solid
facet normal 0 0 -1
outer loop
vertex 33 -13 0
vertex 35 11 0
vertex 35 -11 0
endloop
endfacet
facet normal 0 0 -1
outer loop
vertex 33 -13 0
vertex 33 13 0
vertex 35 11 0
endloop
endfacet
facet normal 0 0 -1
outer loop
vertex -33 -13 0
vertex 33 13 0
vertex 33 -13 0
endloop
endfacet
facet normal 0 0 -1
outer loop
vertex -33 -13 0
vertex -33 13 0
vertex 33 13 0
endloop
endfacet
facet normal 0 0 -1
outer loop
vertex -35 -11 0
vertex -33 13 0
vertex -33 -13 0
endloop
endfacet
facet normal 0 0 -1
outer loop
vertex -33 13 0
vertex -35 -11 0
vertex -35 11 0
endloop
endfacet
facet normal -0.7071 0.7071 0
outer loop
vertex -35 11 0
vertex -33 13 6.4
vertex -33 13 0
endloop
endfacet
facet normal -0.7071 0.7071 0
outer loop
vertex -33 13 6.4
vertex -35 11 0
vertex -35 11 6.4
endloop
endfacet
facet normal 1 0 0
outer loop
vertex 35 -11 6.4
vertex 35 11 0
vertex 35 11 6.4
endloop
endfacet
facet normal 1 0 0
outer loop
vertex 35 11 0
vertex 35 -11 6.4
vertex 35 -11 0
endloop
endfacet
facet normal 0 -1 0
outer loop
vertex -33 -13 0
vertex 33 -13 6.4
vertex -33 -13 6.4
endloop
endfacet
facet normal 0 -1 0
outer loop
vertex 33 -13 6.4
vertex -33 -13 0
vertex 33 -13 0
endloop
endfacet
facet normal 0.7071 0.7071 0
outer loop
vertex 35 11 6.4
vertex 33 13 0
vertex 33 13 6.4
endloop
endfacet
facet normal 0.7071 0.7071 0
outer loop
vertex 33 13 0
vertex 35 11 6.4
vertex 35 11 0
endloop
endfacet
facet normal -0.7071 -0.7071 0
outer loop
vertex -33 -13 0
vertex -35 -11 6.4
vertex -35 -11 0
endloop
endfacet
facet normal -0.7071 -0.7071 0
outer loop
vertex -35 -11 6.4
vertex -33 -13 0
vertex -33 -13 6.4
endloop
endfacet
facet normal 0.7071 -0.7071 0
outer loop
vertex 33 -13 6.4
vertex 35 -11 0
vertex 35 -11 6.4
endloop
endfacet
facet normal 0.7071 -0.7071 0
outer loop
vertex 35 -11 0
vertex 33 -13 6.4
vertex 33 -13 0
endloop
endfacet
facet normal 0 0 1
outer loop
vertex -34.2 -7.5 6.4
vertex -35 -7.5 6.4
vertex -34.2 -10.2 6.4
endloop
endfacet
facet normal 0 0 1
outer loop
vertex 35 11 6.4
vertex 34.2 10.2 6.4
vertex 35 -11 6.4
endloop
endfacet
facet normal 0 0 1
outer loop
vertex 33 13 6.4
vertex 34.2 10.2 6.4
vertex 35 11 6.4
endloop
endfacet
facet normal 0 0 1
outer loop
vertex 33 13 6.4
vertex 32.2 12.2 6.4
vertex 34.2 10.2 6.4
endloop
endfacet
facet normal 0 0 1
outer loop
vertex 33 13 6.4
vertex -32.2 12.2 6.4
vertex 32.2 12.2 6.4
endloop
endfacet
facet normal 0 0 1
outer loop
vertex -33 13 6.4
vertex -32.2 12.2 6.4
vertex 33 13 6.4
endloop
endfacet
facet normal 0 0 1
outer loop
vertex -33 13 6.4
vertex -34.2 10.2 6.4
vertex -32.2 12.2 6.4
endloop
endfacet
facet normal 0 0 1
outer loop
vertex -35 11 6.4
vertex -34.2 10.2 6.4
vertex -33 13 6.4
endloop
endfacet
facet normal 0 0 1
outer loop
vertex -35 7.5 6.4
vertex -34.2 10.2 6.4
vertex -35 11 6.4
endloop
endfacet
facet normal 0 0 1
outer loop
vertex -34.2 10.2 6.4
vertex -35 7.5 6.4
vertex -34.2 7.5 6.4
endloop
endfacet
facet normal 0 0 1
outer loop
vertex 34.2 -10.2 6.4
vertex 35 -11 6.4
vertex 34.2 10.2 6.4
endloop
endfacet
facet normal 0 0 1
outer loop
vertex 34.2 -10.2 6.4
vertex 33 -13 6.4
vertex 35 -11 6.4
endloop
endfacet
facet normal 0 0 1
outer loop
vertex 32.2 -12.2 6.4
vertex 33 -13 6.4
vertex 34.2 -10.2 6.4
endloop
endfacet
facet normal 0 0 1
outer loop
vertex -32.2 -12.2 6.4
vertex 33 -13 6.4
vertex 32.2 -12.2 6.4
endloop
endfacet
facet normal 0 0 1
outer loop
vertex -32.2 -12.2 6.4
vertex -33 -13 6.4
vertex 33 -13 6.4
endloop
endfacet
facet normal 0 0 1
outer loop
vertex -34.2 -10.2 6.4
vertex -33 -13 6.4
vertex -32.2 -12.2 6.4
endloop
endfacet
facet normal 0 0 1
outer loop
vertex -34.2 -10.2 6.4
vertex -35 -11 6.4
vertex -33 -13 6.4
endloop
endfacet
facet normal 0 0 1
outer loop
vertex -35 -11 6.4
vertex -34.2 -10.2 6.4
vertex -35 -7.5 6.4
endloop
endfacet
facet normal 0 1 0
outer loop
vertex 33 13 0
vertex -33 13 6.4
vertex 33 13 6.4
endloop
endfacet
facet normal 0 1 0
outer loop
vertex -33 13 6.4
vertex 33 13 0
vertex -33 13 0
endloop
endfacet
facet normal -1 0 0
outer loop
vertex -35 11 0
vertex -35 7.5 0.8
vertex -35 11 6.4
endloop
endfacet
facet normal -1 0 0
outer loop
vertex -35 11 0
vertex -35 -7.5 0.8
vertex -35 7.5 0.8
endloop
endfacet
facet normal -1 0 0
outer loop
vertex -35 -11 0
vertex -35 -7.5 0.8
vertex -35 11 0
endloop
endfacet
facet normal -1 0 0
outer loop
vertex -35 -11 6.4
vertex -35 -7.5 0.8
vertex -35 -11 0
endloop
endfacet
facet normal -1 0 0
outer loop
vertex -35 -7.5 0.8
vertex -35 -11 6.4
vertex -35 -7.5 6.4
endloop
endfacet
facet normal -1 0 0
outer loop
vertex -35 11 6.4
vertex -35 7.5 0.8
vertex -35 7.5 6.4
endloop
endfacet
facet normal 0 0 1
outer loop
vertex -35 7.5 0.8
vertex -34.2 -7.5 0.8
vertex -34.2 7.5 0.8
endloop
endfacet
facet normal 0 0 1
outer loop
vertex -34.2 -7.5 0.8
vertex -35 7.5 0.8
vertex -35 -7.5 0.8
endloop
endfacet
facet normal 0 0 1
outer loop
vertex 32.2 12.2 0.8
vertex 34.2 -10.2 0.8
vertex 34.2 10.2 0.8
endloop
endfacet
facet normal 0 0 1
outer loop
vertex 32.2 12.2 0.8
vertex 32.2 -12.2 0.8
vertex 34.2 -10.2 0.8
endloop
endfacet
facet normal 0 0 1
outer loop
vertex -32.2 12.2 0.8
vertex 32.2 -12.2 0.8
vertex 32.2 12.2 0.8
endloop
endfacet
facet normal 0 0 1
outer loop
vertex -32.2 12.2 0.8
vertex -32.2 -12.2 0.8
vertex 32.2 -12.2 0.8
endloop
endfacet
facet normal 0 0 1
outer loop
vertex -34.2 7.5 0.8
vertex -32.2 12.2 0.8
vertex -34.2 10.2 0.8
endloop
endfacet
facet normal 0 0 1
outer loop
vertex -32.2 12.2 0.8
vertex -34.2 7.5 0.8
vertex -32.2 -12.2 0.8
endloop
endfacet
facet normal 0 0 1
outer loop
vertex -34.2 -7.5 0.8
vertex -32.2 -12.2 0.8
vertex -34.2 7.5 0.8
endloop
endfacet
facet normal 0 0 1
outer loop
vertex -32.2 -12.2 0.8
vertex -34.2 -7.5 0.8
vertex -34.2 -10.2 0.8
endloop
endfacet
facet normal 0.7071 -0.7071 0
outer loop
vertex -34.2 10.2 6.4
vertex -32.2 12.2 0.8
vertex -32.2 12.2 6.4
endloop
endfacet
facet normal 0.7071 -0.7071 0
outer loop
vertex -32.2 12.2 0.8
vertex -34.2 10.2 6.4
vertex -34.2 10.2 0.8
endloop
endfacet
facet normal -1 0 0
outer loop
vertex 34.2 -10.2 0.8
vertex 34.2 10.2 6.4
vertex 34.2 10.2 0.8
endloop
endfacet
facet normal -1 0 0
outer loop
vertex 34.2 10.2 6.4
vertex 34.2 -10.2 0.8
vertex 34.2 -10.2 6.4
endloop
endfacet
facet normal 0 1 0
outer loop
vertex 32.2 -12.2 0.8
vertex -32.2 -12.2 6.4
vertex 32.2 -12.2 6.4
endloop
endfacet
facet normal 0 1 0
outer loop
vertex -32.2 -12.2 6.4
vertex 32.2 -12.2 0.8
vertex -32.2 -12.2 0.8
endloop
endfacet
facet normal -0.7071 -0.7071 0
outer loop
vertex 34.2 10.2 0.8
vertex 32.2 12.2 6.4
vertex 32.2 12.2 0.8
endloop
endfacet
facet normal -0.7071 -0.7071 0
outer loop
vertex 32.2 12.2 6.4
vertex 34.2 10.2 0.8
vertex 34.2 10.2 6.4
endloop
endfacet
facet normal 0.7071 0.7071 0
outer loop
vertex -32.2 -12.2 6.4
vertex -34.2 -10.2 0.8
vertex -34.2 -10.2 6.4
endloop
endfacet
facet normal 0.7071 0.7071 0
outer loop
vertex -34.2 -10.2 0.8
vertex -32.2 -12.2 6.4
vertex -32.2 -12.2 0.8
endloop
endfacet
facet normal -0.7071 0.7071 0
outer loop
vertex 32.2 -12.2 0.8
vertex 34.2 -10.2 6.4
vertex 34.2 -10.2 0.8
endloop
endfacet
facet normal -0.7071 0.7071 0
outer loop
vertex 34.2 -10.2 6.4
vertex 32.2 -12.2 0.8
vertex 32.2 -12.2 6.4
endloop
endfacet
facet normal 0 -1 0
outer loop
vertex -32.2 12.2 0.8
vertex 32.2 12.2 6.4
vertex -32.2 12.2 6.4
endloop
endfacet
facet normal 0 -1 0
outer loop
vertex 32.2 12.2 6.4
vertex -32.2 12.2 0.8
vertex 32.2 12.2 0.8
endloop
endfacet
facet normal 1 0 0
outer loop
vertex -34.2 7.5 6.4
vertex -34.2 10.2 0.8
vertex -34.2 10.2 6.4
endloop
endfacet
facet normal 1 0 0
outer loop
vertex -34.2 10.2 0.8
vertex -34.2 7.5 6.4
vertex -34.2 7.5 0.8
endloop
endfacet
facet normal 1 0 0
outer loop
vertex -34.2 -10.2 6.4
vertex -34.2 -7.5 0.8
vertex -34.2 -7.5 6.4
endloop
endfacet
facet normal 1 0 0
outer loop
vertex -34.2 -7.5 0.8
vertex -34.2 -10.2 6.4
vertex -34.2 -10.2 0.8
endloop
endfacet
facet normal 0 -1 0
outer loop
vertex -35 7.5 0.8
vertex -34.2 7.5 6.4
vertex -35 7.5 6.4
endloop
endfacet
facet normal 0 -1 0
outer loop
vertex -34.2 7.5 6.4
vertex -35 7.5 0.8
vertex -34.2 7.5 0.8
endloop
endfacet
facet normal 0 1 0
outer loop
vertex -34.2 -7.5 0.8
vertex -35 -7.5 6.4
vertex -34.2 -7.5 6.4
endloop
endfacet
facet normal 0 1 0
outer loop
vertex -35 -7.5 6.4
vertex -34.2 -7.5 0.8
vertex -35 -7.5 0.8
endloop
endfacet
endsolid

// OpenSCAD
// file: lib/utils.scad
module xz_toward_y()
{
	scale([1, 1, -1])
	rotate([-90,0,0])
	children();
}

module anchor(dim, anchor=[0,0,0])
{
	translate([-(1+anchor.x)*dim.x/2, -(1+anchor.y)*dim.y/2, -(1+anchor.z)*dim.z/2])
	children();
}

module block(dim, anchor=[0,0,0])
{
	anchor(dim, anchor)
	cube(dim);
}

module rounded_block_z(dim, anchor=[0,0,0], r=0)
{
	anchor(dim, anchor)
	linear_extrude(dim.z)
	hull()
	for (p=[ [r,r], [dim.x-r, r], [dim.x-r, dim.y-r], [r, dim.y-r] ] )
	translate(p)
	circle(r);
}

module rounded_block_y(dim, anchor=[0,0,0], r=0)
{
	anchor(dim, anchor)
	xz_toward_y()
	linear_extrude(dim.y)
	hull()
	for (p=[ [r,r], [dim.x-r, r], [dim.x-r, dim.z-r], [r, dim.z-r] ] )
	translate(p)
	circle(r);
}

module chamfer_block_y(dim, anchor=[0,0,0], r=0)
{
	anchor(dim, anchor)
	hull()
	{
		translate([r,0,0])
		cube([dim.x-r*2, dim.y, dim.z]);

		translate([0,0,r])
		cube([dim.x, dim.y, dim.z-r*2]);
	}
}

module chamfer_block_z(dim, anchor=[0,0,0], r=0)
{
	anchor(dim, anchor)
	hull()
	{
		translate([r,0,0])
		cube([dim.x-r*2, dim.y, dim.z]);

		translate([0,r,0])
		cube([dim.x, dim.y-r*2, dim.z]);
	}
}

module chamfer_block(dim, anchor=[0,0,0], r=0)
{
	anchor(dim, anchor)
	hull()
	{
		translate([r,r,0])
		cube([dim.x-r*2, dim.y-r*2, dim.z]);

		translate([r,0,r])
		cube([dim.x-r*2, dim.y, dim.z-r*2]);

		translate([0,r,r])
		cube([dim.x, dim.y-r*2, dim.z-r*2]);
	}
}

module at_grid(c,r,pitch,anchor=[0,0,0])
{
	dim=[(c-1)*pitch,(r-1)*pitch,1];
	a=[anchor[0],anchor[1],-1];
	anchor(dim,a)
	for(x=[0:c-1])
	for(y=[0:r-1])
	translate([x*pitch,y*pitch,0])
	children();
}

module ngon_outer(n,h,r)
{
	cylinder(h,r=r, $fn=n);
}

module ngon_inner(n,h,r)
{
	a=360/n/2;
	r_cyl = r/cos(a);
	rotate([0,0,a])
	cylinder(h,r=r_cyl, $fn=n);
}


module ngon_cone_outer(n,h,r1,r2)
{
	cylinder(h,r1=r1,r2=r2, $fn=n);
}

module ngon_cone_inner(n,h,r1,r2)
{
	a=360/n/2;
	r1_cyl = r1/cos(a);
	r2_cyl = r2/cos(a);
	rotate([0,0,a])
	cylinder(h,r1=r1_cyl,r2=r2_cyl, $fn=n);
}

module preview()
{
	if ($preview)
	children();
}
// file: jig.scad
e=.001;

b=.8;
m=.2;

include <lib/utils.scad>


module svg(name)
{
	translate([-34,-12,0])
	import(name);
}

plate_dim = [68,24,2.6];

echo(plate_dim+[b,b,b]);

module jig()
{

	difference()
	{
		union()
		{
			translate([0,0,1-e])
			linear_extrude(3+e)
			difference()
			{
				offset(delta=m+b,chamfer=false)
				svg("border.svg");

				offset(delta=m,chamfer=false)
				svg("border.svg");

				offset(delta=m,chamfer=false)
				svg("cutouts.svg");
			}


			difference()
			{
				chamfer_block_z(plate_dim,[0,0,-1],2);

				translate([0,0,.8])
				chamfer_block_z(plate_dim+[-b*2,-b*2,e],[0,0,-1],2-b/sqrt(2));
			}

			translate([0,0,e])
			linear_extrude(2-e)
			offset(1)
			svg("pogo_holes.svg");
		}

		union()
		{
			translate([0,0,-e])
			linear_extrude(2+2*e)
			offset(m)
			svg("pogo_holes.svg");

			translate([0,0,2])
			linear_extrude(2+e)
			offset(.5)
			svg("pogo_holes.svg");
		}
	}
}

module jig_bottom()
{
	difference()
	{
		chamfer_block_z(plate_dim+[2*m+2*b,2*m+2*b,3.8],[0,0,-1],2);

		translate([0,0,.8])
		chamfer_block_z(plate_dim+[2*m,2*m,10],[0,0,-1],2);

		translate([-plate_dim[0]/2,0,.8])
		block([2,15,10],[0,0,-1]);
	}
}

jig();
// main file
use <jig.scad>

jig_bottom();

//translate([0,0,3.8])
//jig();
